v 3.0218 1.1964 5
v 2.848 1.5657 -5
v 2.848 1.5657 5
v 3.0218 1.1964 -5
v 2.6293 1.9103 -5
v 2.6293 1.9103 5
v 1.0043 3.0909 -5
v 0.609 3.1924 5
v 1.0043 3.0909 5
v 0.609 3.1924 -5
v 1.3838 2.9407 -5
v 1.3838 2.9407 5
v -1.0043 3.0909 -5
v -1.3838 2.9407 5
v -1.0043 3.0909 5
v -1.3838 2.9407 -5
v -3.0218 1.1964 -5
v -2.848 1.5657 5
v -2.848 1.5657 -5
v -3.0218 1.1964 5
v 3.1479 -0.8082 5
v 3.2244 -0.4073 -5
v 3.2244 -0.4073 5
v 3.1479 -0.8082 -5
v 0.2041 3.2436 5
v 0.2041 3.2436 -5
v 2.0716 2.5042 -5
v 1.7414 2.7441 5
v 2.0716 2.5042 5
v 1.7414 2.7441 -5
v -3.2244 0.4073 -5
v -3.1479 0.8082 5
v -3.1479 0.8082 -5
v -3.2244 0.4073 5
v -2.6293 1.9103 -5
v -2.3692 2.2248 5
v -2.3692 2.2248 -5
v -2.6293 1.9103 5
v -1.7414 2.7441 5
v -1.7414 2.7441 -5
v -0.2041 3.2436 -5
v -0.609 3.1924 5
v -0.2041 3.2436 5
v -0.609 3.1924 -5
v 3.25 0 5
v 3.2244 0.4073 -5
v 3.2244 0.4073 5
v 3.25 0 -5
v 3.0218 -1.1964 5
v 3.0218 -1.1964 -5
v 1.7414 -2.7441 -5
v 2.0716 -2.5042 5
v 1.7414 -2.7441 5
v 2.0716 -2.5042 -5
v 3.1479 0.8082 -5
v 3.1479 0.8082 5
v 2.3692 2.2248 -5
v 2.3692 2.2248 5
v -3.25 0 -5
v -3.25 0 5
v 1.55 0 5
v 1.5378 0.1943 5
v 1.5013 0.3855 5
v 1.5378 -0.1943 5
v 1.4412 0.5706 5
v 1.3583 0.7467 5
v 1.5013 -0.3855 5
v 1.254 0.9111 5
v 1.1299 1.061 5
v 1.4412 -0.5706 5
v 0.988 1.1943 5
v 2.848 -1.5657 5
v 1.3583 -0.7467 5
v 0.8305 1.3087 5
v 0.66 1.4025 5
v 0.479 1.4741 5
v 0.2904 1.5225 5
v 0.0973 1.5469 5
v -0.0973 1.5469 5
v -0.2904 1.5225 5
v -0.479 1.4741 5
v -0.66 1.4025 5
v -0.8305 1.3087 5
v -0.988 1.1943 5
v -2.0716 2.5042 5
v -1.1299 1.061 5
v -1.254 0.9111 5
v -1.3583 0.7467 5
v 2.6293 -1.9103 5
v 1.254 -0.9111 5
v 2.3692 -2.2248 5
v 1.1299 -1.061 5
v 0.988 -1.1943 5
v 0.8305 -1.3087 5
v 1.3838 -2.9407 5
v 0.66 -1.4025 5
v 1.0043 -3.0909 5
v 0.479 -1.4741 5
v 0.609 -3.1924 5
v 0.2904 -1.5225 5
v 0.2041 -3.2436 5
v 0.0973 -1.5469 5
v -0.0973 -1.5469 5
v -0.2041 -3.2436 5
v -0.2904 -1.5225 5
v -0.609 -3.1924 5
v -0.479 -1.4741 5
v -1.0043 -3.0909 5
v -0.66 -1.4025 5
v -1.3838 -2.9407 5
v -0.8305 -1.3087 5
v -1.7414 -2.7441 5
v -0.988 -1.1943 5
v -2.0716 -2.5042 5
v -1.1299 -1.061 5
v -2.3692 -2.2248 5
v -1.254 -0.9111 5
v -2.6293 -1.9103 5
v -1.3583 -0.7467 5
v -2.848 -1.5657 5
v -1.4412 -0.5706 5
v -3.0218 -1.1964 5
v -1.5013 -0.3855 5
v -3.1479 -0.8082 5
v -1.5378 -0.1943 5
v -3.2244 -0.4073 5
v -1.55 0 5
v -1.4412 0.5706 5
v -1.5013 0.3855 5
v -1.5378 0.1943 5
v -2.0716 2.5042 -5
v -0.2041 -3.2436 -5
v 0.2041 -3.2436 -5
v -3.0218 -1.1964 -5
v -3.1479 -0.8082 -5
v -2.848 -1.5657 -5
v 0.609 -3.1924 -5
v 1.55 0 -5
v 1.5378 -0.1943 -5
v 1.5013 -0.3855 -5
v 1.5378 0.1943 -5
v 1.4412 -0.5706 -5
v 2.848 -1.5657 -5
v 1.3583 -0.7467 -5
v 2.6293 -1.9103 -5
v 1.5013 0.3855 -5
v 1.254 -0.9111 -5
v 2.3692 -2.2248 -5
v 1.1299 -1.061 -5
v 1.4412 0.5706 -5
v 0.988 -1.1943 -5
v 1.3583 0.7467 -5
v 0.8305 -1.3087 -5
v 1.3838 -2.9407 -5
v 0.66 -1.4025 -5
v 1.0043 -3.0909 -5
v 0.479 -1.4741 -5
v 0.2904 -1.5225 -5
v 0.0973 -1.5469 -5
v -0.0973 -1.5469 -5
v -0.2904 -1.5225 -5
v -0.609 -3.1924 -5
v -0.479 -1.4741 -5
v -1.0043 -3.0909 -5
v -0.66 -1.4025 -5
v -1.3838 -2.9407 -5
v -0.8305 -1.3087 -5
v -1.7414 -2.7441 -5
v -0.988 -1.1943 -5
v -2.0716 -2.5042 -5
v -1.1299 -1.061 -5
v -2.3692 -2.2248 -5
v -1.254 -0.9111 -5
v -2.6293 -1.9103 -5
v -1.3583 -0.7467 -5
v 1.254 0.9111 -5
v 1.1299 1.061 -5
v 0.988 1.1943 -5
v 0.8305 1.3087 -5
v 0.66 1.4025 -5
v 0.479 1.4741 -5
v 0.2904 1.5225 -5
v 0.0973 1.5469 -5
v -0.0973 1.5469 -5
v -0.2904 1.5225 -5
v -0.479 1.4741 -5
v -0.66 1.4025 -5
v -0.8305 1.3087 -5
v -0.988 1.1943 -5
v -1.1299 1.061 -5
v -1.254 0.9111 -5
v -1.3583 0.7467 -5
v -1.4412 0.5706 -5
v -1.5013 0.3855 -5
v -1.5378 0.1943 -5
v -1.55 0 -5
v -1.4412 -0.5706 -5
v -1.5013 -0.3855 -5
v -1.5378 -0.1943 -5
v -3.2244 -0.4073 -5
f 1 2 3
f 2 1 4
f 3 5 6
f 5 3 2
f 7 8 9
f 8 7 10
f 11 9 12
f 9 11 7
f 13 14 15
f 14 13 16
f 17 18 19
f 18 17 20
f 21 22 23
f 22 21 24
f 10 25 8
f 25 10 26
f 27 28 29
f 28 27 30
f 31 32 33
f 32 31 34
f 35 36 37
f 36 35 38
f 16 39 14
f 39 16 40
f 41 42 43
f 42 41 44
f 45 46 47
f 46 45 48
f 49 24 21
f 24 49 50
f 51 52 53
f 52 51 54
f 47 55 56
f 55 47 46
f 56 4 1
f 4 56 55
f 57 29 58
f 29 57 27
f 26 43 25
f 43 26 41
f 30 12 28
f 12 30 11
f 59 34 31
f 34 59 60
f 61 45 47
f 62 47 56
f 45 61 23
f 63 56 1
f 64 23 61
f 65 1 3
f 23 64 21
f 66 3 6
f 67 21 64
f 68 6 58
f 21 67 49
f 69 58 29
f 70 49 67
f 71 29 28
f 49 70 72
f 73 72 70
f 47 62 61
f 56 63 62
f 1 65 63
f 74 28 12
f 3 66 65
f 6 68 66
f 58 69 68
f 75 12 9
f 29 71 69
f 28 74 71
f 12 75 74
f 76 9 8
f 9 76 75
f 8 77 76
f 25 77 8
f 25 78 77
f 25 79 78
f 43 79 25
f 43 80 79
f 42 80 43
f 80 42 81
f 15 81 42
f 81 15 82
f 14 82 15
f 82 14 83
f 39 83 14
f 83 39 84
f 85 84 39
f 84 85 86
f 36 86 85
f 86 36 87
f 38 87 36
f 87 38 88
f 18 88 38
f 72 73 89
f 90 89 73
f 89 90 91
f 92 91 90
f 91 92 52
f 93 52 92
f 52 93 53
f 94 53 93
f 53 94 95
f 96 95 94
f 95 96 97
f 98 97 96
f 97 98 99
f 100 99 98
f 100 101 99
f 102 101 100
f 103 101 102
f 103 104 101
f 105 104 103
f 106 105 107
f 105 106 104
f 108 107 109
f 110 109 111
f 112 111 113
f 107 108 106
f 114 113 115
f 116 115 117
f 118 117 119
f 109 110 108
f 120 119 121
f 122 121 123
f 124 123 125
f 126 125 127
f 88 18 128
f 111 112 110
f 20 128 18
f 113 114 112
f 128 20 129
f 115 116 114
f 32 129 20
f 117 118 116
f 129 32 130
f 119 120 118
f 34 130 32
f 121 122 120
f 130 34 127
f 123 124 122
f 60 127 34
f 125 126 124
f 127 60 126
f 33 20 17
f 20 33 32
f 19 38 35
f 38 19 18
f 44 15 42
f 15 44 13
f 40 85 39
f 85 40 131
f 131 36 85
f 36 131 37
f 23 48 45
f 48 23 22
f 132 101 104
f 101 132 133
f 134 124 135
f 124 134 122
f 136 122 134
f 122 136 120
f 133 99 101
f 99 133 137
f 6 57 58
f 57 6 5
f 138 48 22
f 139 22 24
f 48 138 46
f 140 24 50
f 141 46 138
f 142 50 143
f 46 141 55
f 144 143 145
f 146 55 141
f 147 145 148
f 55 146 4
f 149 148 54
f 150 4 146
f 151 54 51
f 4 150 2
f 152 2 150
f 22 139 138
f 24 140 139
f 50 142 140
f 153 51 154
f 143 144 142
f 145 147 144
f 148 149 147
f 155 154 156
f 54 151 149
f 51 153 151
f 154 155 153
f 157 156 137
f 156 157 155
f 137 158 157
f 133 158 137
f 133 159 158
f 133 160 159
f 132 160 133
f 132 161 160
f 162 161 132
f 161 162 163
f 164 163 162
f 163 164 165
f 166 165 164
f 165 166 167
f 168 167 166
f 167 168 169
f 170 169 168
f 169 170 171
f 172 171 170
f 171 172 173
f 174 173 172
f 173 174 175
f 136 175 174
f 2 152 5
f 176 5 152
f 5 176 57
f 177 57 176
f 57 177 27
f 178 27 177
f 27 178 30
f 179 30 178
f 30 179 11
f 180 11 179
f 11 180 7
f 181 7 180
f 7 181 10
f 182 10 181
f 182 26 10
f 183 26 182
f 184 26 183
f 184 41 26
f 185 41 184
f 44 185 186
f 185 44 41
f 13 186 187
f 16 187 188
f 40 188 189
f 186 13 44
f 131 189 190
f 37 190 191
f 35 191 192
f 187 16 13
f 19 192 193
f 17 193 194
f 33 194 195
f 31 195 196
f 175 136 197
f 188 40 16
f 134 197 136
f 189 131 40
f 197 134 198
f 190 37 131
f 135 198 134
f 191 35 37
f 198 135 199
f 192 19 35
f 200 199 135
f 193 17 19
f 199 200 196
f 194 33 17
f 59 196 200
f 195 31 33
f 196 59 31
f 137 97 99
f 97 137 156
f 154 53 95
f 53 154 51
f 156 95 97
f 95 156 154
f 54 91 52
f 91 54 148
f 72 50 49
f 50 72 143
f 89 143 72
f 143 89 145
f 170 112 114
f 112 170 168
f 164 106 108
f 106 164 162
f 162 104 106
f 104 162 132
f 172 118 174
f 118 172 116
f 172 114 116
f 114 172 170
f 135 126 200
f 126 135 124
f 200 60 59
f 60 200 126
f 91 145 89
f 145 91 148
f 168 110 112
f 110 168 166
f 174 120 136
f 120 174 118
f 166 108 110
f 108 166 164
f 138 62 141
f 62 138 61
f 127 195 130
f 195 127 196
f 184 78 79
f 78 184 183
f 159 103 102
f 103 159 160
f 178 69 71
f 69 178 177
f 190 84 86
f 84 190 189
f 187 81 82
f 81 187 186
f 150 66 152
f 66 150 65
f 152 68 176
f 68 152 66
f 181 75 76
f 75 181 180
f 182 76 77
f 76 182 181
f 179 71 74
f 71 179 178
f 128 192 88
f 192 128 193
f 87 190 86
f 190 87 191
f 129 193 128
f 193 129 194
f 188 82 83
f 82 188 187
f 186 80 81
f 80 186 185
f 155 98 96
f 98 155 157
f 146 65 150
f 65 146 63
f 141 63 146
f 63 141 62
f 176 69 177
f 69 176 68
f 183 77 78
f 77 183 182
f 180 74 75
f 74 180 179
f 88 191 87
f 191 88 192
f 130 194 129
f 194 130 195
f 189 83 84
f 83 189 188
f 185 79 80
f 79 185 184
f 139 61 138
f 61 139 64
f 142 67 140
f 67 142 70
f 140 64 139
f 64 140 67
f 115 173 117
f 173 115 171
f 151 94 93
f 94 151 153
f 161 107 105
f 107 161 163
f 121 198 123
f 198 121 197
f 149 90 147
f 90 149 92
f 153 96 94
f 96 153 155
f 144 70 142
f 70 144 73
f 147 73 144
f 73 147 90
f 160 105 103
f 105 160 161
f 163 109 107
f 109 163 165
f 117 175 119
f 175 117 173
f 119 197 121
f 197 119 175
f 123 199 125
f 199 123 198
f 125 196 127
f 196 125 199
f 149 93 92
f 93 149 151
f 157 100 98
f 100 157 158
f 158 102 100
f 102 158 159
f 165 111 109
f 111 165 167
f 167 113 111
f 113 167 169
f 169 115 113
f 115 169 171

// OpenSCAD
$fn = 50;


difference() {
	union() {
		translate(v = [0, 0, -5.0000000000]) {
			cylinder(h = 10, r = 3.2500000000);
		}
	}
	union() {
		translate(v = [0, 0, -100.0000000000]) {
			cylinder(h = 200, r = 1.5500000000);
		}
	}
}
